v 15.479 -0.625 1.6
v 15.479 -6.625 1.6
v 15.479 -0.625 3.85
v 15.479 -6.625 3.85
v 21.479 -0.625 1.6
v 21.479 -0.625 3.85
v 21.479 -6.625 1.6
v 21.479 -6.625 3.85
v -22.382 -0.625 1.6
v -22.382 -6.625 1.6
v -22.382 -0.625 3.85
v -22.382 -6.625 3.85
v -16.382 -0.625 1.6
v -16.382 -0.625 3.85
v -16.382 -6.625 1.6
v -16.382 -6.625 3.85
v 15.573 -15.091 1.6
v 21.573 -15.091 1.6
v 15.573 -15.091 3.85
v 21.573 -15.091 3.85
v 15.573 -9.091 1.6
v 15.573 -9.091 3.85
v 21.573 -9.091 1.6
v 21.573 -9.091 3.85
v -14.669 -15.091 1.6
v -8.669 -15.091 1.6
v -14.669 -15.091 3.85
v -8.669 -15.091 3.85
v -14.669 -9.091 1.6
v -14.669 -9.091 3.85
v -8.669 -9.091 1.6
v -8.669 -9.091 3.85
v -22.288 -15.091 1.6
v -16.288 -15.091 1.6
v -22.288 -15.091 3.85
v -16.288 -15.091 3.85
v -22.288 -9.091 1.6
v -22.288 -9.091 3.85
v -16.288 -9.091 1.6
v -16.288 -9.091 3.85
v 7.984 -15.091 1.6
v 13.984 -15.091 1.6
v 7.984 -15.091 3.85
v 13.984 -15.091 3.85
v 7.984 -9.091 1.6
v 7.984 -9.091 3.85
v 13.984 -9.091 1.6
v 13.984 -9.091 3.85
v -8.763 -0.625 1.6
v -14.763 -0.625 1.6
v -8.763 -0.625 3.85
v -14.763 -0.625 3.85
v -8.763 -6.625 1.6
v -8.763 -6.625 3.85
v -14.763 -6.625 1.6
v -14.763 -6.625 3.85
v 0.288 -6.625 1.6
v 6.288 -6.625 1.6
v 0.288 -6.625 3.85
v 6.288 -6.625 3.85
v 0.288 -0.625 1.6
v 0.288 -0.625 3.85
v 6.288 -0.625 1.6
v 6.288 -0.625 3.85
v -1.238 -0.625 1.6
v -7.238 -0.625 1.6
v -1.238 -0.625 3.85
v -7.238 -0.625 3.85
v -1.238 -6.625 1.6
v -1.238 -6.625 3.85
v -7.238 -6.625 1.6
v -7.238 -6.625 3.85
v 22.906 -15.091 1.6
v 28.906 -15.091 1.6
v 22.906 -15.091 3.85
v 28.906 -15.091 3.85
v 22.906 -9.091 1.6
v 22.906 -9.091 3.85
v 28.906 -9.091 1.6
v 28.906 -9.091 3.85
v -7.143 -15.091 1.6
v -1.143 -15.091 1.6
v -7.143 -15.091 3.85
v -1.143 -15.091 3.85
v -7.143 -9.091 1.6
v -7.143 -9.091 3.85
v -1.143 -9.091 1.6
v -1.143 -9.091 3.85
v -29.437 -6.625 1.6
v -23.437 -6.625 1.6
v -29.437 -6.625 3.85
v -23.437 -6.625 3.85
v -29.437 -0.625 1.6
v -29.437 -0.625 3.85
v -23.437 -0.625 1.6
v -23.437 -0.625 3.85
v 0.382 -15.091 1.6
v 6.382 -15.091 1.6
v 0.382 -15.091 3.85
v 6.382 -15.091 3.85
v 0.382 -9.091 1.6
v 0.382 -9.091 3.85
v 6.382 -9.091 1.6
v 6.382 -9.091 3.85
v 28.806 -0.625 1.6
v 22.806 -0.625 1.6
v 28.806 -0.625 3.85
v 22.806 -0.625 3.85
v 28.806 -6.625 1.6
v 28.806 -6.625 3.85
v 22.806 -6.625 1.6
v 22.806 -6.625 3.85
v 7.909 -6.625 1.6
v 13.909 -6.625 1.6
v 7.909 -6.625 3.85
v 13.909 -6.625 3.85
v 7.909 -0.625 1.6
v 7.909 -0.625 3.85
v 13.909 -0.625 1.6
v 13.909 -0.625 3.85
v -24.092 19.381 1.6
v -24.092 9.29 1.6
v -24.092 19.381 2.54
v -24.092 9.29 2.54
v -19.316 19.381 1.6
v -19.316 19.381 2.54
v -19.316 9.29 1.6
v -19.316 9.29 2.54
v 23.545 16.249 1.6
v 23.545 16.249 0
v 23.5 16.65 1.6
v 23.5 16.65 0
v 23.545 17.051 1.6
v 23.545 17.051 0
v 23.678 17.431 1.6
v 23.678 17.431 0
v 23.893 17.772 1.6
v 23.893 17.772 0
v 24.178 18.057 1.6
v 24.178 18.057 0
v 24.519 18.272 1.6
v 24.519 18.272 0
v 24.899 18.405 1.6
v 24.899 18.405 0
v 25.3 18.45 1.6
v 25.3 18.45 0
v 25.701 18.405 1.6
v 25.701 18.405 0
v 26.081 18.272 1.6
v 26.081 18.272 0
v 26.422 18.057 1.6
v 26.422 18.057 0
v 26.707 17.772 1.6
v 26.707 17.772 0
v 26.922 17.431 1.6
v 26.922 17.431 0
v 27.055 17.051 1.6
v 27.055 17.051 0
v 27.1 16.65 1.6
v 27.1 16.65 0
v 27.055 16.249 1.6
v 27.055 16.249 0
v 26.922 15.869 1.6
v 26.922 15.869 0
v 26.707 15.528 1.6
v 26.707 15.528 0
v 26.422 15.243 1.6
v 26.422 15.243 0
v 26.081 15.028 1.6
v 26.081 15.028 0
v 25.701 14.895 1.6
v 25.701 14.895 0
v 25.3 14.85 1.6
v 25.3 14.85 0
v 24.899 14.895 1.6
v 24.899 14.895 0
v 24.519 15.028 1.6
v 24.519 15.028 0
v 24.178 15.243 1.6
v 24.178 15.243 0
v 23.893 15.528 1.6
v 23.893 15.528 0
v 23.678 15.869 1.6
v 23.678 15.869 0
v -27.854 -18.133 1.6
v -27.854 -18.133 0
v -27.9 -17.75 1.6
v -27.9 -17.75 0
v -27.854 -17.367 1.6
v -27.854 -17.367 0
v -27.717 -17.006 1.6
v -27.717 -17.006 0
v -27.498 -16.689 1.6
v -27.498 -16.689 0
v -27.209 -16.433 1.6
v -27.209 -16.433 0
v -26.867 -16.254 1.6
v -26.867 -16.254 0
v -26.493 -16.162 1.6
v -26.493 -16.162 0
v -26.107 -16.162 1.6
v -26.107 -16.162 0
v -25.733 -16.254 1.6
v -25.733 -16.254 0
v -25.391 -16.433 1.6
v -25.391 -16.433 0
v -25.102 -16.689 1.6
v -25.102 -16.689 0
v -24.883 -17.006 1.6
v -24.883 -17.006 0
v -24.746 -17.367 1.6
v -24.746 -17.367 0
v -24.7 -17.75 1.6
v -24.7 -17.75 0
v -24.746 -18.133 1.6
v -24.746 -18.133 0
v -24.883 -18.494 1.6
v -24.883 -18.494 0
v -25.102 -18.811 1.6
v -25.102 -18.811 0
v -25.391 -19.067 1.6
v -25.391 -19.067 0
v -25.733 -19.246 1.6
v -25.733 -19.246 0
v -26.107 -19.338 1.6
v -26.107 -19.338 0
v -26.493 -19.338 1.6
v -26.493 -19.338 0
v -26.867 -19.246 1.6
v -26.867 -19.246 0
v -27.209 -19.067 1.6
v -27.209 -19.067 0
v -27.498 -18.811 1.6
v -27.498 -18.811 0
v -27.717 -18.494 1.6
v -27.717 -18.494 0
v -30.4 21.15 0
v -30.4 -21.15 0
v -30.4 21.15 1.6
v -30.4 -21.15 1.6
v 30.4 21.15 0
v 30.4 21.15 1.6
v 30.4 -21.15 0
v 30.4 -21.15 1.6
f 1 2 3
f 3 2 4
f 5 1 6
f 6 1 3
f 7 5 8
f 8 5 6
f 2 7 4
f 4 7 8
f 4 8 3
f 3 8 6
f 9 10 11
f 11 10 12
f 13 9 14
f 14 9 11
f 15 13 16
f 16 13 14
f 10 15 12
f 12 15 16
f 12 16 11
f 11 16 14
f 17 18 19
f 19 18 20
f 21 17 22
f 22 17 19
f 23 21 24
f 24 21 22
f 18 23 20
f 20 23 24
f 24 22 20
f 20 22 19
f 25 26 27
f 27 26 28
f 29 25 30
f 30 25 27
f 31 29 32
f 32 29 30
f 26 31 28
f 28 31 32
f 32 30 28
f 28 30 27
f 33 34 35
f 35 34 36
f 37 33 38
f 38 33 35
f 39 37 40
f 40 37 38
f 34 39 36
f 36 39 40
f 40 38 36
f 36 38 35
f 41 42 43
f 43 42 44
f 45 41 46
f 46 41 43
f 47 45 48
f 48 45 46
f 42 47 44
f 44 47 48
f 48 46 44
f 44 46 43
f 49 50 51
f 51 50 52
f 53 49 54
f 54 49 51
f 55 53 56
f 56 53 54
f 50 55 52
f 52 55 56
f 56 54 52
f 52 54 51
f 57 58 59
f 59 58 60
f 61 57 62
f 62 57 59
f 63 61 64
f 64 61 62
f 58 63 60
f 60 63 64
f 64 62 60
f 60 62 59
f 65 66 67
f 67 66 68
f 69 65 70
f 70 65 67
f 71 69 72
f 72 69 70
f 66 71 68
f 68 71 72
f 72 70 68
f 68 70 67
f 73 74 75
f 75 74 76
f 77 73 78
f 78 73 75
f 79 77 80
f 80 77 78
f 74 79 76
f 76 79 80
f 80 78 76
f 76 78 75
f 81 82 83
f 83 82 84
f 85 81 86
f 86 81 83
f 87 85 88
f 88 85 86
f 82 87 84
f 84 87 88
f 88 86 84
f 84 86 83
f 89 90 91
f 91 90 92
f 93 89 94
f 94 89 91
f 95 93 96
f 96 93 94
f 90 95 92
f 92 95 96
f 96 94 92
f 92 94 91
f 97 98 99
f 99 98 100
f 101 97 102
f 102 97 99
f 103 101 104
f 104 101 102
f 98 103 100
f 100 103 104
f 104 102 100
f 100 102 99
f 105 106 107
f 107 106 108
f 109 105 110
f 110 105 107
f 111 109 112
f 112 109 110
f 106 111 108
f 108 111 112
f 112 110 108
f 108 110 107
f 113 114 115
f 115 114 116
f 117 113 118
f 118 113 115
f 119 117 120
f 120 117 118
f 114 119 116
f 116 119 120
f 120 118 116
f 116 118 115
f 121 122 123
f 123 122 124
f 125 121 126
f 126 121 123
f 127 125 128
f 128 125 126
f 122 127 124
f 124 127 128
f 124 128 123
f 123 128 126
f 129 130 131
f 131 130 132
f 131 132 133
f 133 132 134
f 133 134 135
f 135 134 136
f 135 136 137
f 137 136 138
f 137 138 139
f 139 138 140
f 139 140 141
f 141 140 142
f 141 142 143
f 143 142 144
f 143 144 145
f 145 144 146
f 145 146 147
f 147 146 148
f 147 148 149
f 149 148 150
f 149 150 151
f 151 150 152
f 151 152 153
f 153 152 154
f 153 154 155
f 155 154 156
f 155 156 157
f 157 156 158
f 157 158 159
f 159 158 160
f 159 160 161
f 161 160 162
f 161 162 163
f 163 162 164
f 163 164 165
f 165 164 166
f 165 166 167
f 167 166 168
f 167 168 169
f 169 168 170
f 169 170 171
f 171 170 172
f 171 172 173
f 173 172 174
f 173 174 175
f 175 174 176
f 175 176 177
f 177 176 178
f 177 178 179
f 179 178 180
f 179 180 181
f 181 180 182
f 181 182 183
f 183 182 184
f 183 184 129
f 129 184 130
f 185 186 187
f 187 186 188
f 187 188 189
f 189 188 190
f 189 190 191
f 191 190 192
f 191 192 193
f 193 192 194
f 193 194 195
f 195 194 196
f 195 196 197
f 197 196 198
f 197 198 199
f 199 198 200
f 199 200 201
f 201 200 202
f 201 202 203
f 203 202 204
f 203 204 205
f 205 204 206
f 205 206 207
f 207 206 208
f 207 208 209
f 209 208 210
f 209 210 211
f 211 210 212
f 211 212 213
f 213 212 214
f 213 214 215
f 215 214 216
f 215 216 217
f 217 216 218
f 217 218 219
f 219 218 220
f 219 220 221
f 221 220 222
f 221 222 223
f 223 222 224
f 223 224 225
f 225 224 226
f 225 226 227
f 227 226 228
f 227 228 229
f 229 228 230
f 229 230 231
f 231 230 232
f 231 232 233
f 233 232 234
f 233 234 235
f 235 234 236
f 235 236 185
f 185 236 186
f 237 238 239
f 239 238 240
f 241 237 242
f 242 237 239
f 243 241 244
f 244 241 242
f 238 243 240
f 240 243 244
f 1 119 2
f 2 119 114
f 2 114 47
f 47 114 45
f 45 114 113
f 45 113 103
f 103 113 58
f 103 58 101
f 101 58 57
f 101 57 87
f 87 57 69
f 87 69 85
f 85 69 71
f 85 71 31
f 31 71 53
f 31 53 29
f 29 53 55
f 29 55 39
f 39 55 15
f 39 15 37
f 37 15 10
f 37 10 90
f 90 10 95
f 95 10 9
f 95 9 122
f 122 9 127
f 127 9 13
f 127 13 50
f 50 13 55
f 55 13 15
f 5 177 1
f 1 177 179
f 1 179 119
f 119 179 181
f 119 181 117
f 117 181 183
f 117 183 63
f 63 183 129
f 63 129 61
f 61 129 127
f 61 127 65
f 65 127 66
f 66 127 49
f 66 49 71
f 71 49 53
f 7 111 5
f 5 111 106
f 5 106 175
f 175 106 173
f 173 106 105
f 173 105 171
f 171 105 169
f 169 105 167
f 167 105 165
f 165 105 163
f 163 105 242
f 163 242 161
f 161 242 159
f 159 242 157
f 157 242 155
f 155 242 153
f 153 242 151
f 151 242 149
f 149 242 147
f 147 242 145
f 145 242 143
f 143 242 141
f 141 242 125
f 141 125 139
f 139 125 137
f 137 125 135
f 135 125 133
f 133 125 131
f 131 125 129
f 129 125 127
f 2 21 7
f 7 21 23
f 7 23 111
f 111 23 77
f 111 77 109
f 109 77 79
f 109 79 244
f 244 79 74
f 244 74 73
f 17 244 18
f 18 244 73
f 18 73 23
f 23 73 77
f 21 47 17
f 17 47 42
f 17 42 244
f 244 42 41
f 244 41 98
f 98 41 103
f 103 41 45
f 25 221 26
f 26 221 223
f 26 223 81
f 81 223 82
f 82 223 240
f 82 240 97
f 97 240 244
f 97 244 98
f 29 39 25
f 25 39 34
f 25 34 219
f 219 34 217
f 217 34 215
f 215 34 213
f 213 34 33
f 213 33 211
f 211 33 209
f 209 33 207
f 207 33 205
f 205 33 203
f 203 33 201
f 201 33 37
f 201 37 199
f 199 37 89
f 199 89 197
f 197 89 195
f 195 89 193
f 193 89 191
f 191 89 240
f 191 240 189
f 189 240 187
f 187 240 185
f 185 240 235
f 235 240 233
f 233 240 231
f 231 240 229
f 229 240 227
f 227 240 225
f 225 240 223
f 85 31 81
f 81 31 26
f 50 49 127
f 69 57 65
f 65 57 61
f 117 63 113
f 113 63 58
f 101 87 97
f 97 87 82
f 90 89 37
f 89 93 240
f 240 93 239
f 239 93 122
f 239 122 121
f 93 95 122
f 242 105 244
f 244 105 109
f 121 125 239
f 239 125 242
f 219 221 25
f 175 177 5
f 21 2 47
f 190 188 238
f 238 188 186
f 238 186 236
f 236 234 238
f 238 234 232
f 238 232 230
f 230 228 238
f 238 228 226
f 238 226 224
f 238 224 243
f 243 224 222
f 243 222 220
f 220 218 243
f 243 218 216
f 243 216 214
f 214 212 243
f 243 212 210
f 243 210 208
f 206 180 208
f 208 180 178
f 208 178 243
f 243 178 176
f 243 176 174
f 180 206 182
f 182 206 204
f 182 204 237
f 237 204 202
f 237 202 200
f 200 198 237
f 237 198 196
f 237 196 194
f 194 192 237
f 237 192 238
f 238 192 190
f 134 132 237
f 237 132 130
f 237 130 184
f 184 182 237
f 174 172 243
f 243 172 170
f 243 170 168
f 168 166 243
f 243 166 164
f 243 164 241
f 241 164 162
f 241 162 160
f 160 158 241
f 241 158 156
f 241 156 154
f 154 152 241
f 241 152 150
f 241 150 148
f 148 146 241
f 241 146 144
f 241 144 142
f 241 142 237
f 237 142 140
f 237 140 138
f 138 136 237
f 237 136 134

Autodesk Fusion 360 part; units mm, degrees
sketch "Sketch1" plane through (0, 0, 0) normal (0, 0, 1) x (1, 0, 0) in component "5S100ABMS"
  line L0 (-30.4, 21.15) -> (30.4, 21.15)
  line L1 (30.4, 21.15) -> (30.4, -21.15)
  line L2 (30.4, -21.15) -> (-30.4, -21.15)
  line L3 (-30.4, -21.15) -> (-30.4, 21.15)
  line L4 (-30.4, 21.15) -> (30.4, -21.15) construction
  line L5 (30.4, 21.15) -> (-30.4, -21.15) construction
  line L6 (30.4, 21.15) -> (27.1, 21.15) construction
  line L7 (27.1, 21.15) -> (27.1, 18.45) construction
  line L8 (27.1, 18.45) -> (30.4, 18.45) construction
  line L9 (30.4, 18.45) -> (30.4, 21.15) construction
  line L10 (-30.4, -19.35) -> (-27.9, -19.35) construction
  line L11 (-27.9, -19.35) -> (-27.9, -21.15) construction
  line L12 (-27.9, -21.15) -> (-30.4, -21.15) construction
  line L13 (-30.4, -21.15) -> (-30.4, -19.35) construction
  circle A0 centre (25.3, 16.65) radius 1.8
  circle A1 centre (-26.3, -17.75) radius 1.6
  line L14 (25.3, 16.65) -> (27.1, 16.65) construction
  line L15 (27.1, 16.65) -> (27.1, 18.45) construction
  line L16 (27.1, 18.45) -> (25.3, 18.45) construction
  line L17 (25.3, 18.45) -> (25.3, 16.65) construction
  line L18 (-26.3, -17.75) -> (-27.9, -17.75) construction
  line L19 (-27.9, -17.75) -> (-27.9, -19.35) construction
  line L20 (-27.9, -19.35) -> (-26.3, -19.35) construction
  line L21 (-26.3, -19.35) -> (-26.3, -17.75) construction
  dimension "Length" = 60.8
  dimension "Width" = 42.3
  dimension "d3" = 3.3
  dimension "d4" = 2.7
  dimension "d5" = 2.5
  dimension "d6" = 1.8
  dimension "d7" = 3.6
  dimension "d8" = 3.2
extrude "Extrude1" add sketch "Sketch1" along normal blind 1.6 in component "5S100ABMS"
sketch "Sketch2" plane through (0, 0, 1.6) normal (0, 0, 1) x (1, 0, 0) in component "5S100ABMS"
  circle A0 centre (-26.3, -17.75) radius 1.6
  circle A1 centre (25.3, 16.65) radius 1.8
  line L0 (-30.4, -21.15) -> (30.4, -21.15)
  line L1 (30.4, -21.15) -> (30.4, 21.15)
  line L2 (30.4, 21.15) -> (-30.4, 21.15)
  line L3 (-30.4, 21.15) -> (-30.4, -21.15)
  line L4 (-29.4367, -6.6251) -> (-29.4367, -0.6251)
  line L5 (-23.4367, -0.6251) -> (-23.4367, -6.6251)
  line L6 (-29.4367, -0.6251) -> (-23.4367, -0.6251)
  line L7 (-29.4367, -6.6251) -> (-23.4367, -0.6251) construction
  line L8 (-23.4367, -6.6251) -> (-29.4367, -6.6251)
  line L9 (-23.4367, -6.6251) -> (-29.4367, -0.6251) construction
  line L10 (-22.2878, -15.0909) -> (-22.2878, -9.0909)
  line L11 (-16.2878, -9.0909) -> (-16.2878, -15.0909)
  line L12 (-22.2878, -9.0909) -> (-16.2878, -9.0909)
  line L13 (-22.2878, -15.0909) -> (-16.2878, -9.0909) construction
  line L14 (-16.2878, -15.0909) -> (-22.2878, -15.0909)
  line L15 (-16.2878, -15.0909) -> (-22.2878, -9.0909) construction
  line L16 (-14.6686, -15.0909) -> (-14.6686, -9.0909)
  line L17 (-8.6686, -9.0909) -> (-8.6686, -15.0909)
  line L18 (-14.6686, -9.0909) -> (-8.6686, -9.0909)
  line L19 (-14.6686, -15.0909) -> (-8.6686, -9.0909) construction
  line L20 (-8.6686, -15.0909) -> (-14.6686, -15.0909)
  line L21 (-8.6686, -15.0909) -> (-14.6686, -9.0909) construction
  line L22 (-7.1435, -15.0909) -> (-7.1435, -9.0909)
  line L23 (-1.1435, -9.0909) -> (-1.1435, -15.0909)
  line L24 (-7.1435, -9.0909) -> (-1.1435, -9.0909)
  line L25 (-7.1435, -15.0909) -> (-1.1435, -9.0909) construction
  line L26 (-1.1435, -15.0909) -> (-7.1435, -15.0909)
  line L27 (-1.1435, -15.0909) -> (-7.1435, -9.0909) construction
  line L28 (0.3817, -15.0909) -> (0.3817, -9.0909)
  line L29 (6.3817, -9.0909) -> (6.3817, -15.0909)
  line L30 (0.3817, -9.0909) -> (6.3817, -9.0909)
  line L31 (0.3817, -15.0909) -> (6.3817, -9.0909) construction
  line L32 (6.3817, -15.0909) -> (0.3817, -15.0909)
  line L33 (6.3817, -15.0909) -> (0.3817, -9.0909) construction
  line L34 (7.9839, -15.0909) -> (7.9839, -9.0909)
  line L35 (13.9839, -9.0909) -> (13.9839, -15.0909)
  line L36 (7.9839, -9.0909) -> (13.9839, -9.0909)
  line L37 (7.9839, -15.0909) -> (13.9839, -9.0909) construction
  line L38 (13.9839, -15.0909) -> (7.9839, -15.0909)
  line L39 (13.9839, -15.0909) -> (7.9839, -9.0909) construction
  line L40 (15.5731, -15.0909) -> (15.5731, -9.0909)
  line L41 (21.5731, -9.0909) -> (21.5731, -15.0909)
  line L42 (15.5731, -9.0909) -> (21.5731, -9.0909)
  line L43 (15.5731, -15.0909) -> (21.5731, -9.0909) construction
  line L44 (21.5731, -15.0909) -> (15.5731, -15.0909)
  line L45 (21.5731, -15.0909) -> (15.5731, -9.0909) construction
  line L46 (22.9058, -15.0909) -> (22.9058, -9.0909)
  line L47 (28.9058, -9.0909) -> (28.9058, -15.0909)
  line L48 (22.9058, -9.0909) -> (28.9058, -9.0909)
  line L49 (22.9058, -15.0909) -> (28.9058, -9.0909) construction
  line L50 (28.9058, -15.0909) -> (22.9058, -15.0909)
  line L51 (28.9058, -15.0909) -> (22.9058, -9.0909) construction
  line L52 (-16.3819, -6.6251) -> (-22.3819, -6.6251)
  line L53 (-1.2375, -6.6251) -> (-7.2375, -0.6251) construction
  line L54 (0.2876, -6.6251) -> (0.2876, -0.6251)
  line L55 (-1.2375, -0.6251) -> (-1.2375, -6.6251)
  line L56 (7.9089, -6.6251) -> (7.9089, -0.6251)
  line L57 (13.9089, -6.6251) -> (7.9089, -0.6251) construction
  line L58 (-22.3819, -6.6251) -> (-16.3819, -0.6251) construction
  line L59 (-16.3819, -6.6251) -> (-22.3819, -0.6251) construction
  line L60 (28.8058, -6.6251) -> (22.8058, -6.6251)
  line L61 (6.2876, -0.6251) -> (6.2876, -6.6251)
  line L62 (-14.7627, -6.6251) -> (-14.7627, -0.6251)
  line L63 (15.479, -6.6251) -> (21.479, -0.6251) construction
  line L64 (-1.2375, -6.6251) -> (-7.2375, -6.6251)
  line L65 (-14.7627, -6.6251) -> (-8.7627, -0.6251) construction
  line L66 (22.8058, -6.6251) -> (22.8058, -0.6251)
  line L67 (-7.2375, -6.6251) -> (-7.2375, -0.6251)
  line L68 (7.9089, -0.6251) -> (13.9089, -0.6251)
  line L69 (22.8058, -6.6251) -> (28.8058, -0.6251) construction
  line L70 (21.479, -6.6251) -> (15.479, -0.6251) construction
  line L71 (28.8058, -0.6251) -> (28.8058, -6.6251)
  line L72 (0.2876, -0.6251) -> (6.2876, -0.6251)
  line L73 (-22.3819, -0.6251) -> (-16.3819, -0.6251)
  line L74 (13.9089, -0.6251) -> (13.9089, -6.6251)
  line L75 (-8.7627, -0.6251) -> (-8.7627, -6.6251)
  line L76 (-16.3819, -0.6251) -> (-16.3819, -6.6251)
  line L77 (22.8058, -0.6251) -> (28.8058, -0.6251)
  line L78 (21.479, -0.6251) -> (21.479, -6.6251)
  line L79 (15.479, -0.6251) -> (21.479, -0.6251)
  line L80 (-7.2375, -6.6251) -> (-1.2375, -0.6251) construction
  line L81 (-8.7627, -6.6251) -> (-14.7627, -6.6251)
  line L82 (28.8058, -6.6251) -> (22.8058, -0.6251) construction
  line L83 (-14.7627, -0.6251) -> (-8.7627, -0.6251)
  line L84 (-22.3819, -6.6251) -> (-22.3819, -0.6251)
  line L85 (7.9089, -6.6251) -> (13.9089, -0.6251) construction
  line L86 (0.2876, -6.6251) -> (6.2876, -0.6251) construction
  line L87 (-7.2375, -0.6251) -> (-1.2375, -0.6251)
  line L88 (13.9089, -6.6251) -> (7.9089, -6.6251)
  line L89 (-8.7627, -6.6251) -> (-14.7627, -0.6251) construction
  line L90 (21.479, -6.6251) -> (15.479, -6.6251)
  line L91 (6.2876, -6.6251) -> (0.2876, -6.6251)
  line L92 (6.2876, -6.6251) -> (0.2876, -0.6251) construction
  line L93 (15.479, -6.6251) -> (15.479, -0.6251)
  line L94 (-24.0917, 19.3813) -> (-19.3155, 19.3813)
  line L95 (-19.3155, 19.3813) -> (-19.3155, 9.2896)
  line L96 (-19.3155, 9.2896) -> (-24.0917, 9.2896)
  line L97 (-24.0917, 9.2896) -> (-24.0917, 19.3813)
  point P0 (-26.4367, -3.6251)
  point P1 (-19.3819, -3.6251)
  point P2 (-19.2878, -12.0909)
  point P3 (-11.6686, -12.0909)
  point P4 (-4.1435, -12.0909)
  point P5 (3.3817, -12.0909)
  point P6 (10.9839, -12.0909)
  point P7 (18.5731, -12.0909)
  point P8 (25.9058, -12.0909)
  point P9 (-19.3819, -3.6251)
  point P10 (10.9089, -3.6251)
  point P11 (-11.7627, -3.6251)
  point P12 (18.479, -3.6251)
  point P13 (3.2876, -3.6251)
  point P14 (-4.2375, -3.6251)
  point P15 (25.8058, -3.6251)
  dimension "d13" = 6
  dimension "d14" = 6
  dimension "d17" = 6
  dimension "d18" = 6
  dimension "d19" = 6
  dimension "d20" = 6
  dimension "d21" = 6
  dimension "d22" = 6
  dimension "d23" = 6
  dimension "d24" = 6
  dimension "d25" = 6
  dimension "d26" = 6
  dimension "d27" = 6
  dimension "d28" = 6
  dimension "d29" = 6
  dimension "d30" = 6
  dimension "d31" = 6
  dimension "d32" = 6
  dimension "d33" = 6
  dimension "d34" = 6
  dimension "d35" = 6
  dimension "d36" = 6
  dimension "d37" = 6
  dimension "d38" = 6
  dimension "d39" = 6
  dimension "d40" = 6
  dimension "d41" = 6
  dimension "d42" = 6
  dimension "d43" = 6
  dimension "d44" = 6
  dimension "d45" = 4.7762
extrude "Extrude2" add sketch "Sketch2" along normal blind 0.94 contours L94 L95 L96 L97 in component "5S100ABMS"
extrude "Extrude3" add sketch "Sketch2" along normal blind 2.25 contours L4 L5 L6 L8 | L10 L11 L12 L14 | L16 L17 L18 L20 | L22 L23 L24 L26 | L28 L29 L30 L32 | L34 L35 L36 L38 | L40 L41 L42 L44 | L46 L47 L48 L50 | L52 L73 L76 L84 | L54 L61 L72 L91 | L55 L64 L67 L87 | L56 L68 L74 L88 | L60 L66 L71 L77 | L62 L75 L81 L83 | L78 L79 L90 L93 in component "5S100ABMS"
component "5S100ABMS" placed x (1, 0, 0) y (0, 1, 0) z (0, 0, 1) at (0, 0, 0)
equation "Thickness = 1.6 mm"
equation "d46 = 2.54 mm - Thickness"
equation "d48 = 3.85 mm - Thickness"
